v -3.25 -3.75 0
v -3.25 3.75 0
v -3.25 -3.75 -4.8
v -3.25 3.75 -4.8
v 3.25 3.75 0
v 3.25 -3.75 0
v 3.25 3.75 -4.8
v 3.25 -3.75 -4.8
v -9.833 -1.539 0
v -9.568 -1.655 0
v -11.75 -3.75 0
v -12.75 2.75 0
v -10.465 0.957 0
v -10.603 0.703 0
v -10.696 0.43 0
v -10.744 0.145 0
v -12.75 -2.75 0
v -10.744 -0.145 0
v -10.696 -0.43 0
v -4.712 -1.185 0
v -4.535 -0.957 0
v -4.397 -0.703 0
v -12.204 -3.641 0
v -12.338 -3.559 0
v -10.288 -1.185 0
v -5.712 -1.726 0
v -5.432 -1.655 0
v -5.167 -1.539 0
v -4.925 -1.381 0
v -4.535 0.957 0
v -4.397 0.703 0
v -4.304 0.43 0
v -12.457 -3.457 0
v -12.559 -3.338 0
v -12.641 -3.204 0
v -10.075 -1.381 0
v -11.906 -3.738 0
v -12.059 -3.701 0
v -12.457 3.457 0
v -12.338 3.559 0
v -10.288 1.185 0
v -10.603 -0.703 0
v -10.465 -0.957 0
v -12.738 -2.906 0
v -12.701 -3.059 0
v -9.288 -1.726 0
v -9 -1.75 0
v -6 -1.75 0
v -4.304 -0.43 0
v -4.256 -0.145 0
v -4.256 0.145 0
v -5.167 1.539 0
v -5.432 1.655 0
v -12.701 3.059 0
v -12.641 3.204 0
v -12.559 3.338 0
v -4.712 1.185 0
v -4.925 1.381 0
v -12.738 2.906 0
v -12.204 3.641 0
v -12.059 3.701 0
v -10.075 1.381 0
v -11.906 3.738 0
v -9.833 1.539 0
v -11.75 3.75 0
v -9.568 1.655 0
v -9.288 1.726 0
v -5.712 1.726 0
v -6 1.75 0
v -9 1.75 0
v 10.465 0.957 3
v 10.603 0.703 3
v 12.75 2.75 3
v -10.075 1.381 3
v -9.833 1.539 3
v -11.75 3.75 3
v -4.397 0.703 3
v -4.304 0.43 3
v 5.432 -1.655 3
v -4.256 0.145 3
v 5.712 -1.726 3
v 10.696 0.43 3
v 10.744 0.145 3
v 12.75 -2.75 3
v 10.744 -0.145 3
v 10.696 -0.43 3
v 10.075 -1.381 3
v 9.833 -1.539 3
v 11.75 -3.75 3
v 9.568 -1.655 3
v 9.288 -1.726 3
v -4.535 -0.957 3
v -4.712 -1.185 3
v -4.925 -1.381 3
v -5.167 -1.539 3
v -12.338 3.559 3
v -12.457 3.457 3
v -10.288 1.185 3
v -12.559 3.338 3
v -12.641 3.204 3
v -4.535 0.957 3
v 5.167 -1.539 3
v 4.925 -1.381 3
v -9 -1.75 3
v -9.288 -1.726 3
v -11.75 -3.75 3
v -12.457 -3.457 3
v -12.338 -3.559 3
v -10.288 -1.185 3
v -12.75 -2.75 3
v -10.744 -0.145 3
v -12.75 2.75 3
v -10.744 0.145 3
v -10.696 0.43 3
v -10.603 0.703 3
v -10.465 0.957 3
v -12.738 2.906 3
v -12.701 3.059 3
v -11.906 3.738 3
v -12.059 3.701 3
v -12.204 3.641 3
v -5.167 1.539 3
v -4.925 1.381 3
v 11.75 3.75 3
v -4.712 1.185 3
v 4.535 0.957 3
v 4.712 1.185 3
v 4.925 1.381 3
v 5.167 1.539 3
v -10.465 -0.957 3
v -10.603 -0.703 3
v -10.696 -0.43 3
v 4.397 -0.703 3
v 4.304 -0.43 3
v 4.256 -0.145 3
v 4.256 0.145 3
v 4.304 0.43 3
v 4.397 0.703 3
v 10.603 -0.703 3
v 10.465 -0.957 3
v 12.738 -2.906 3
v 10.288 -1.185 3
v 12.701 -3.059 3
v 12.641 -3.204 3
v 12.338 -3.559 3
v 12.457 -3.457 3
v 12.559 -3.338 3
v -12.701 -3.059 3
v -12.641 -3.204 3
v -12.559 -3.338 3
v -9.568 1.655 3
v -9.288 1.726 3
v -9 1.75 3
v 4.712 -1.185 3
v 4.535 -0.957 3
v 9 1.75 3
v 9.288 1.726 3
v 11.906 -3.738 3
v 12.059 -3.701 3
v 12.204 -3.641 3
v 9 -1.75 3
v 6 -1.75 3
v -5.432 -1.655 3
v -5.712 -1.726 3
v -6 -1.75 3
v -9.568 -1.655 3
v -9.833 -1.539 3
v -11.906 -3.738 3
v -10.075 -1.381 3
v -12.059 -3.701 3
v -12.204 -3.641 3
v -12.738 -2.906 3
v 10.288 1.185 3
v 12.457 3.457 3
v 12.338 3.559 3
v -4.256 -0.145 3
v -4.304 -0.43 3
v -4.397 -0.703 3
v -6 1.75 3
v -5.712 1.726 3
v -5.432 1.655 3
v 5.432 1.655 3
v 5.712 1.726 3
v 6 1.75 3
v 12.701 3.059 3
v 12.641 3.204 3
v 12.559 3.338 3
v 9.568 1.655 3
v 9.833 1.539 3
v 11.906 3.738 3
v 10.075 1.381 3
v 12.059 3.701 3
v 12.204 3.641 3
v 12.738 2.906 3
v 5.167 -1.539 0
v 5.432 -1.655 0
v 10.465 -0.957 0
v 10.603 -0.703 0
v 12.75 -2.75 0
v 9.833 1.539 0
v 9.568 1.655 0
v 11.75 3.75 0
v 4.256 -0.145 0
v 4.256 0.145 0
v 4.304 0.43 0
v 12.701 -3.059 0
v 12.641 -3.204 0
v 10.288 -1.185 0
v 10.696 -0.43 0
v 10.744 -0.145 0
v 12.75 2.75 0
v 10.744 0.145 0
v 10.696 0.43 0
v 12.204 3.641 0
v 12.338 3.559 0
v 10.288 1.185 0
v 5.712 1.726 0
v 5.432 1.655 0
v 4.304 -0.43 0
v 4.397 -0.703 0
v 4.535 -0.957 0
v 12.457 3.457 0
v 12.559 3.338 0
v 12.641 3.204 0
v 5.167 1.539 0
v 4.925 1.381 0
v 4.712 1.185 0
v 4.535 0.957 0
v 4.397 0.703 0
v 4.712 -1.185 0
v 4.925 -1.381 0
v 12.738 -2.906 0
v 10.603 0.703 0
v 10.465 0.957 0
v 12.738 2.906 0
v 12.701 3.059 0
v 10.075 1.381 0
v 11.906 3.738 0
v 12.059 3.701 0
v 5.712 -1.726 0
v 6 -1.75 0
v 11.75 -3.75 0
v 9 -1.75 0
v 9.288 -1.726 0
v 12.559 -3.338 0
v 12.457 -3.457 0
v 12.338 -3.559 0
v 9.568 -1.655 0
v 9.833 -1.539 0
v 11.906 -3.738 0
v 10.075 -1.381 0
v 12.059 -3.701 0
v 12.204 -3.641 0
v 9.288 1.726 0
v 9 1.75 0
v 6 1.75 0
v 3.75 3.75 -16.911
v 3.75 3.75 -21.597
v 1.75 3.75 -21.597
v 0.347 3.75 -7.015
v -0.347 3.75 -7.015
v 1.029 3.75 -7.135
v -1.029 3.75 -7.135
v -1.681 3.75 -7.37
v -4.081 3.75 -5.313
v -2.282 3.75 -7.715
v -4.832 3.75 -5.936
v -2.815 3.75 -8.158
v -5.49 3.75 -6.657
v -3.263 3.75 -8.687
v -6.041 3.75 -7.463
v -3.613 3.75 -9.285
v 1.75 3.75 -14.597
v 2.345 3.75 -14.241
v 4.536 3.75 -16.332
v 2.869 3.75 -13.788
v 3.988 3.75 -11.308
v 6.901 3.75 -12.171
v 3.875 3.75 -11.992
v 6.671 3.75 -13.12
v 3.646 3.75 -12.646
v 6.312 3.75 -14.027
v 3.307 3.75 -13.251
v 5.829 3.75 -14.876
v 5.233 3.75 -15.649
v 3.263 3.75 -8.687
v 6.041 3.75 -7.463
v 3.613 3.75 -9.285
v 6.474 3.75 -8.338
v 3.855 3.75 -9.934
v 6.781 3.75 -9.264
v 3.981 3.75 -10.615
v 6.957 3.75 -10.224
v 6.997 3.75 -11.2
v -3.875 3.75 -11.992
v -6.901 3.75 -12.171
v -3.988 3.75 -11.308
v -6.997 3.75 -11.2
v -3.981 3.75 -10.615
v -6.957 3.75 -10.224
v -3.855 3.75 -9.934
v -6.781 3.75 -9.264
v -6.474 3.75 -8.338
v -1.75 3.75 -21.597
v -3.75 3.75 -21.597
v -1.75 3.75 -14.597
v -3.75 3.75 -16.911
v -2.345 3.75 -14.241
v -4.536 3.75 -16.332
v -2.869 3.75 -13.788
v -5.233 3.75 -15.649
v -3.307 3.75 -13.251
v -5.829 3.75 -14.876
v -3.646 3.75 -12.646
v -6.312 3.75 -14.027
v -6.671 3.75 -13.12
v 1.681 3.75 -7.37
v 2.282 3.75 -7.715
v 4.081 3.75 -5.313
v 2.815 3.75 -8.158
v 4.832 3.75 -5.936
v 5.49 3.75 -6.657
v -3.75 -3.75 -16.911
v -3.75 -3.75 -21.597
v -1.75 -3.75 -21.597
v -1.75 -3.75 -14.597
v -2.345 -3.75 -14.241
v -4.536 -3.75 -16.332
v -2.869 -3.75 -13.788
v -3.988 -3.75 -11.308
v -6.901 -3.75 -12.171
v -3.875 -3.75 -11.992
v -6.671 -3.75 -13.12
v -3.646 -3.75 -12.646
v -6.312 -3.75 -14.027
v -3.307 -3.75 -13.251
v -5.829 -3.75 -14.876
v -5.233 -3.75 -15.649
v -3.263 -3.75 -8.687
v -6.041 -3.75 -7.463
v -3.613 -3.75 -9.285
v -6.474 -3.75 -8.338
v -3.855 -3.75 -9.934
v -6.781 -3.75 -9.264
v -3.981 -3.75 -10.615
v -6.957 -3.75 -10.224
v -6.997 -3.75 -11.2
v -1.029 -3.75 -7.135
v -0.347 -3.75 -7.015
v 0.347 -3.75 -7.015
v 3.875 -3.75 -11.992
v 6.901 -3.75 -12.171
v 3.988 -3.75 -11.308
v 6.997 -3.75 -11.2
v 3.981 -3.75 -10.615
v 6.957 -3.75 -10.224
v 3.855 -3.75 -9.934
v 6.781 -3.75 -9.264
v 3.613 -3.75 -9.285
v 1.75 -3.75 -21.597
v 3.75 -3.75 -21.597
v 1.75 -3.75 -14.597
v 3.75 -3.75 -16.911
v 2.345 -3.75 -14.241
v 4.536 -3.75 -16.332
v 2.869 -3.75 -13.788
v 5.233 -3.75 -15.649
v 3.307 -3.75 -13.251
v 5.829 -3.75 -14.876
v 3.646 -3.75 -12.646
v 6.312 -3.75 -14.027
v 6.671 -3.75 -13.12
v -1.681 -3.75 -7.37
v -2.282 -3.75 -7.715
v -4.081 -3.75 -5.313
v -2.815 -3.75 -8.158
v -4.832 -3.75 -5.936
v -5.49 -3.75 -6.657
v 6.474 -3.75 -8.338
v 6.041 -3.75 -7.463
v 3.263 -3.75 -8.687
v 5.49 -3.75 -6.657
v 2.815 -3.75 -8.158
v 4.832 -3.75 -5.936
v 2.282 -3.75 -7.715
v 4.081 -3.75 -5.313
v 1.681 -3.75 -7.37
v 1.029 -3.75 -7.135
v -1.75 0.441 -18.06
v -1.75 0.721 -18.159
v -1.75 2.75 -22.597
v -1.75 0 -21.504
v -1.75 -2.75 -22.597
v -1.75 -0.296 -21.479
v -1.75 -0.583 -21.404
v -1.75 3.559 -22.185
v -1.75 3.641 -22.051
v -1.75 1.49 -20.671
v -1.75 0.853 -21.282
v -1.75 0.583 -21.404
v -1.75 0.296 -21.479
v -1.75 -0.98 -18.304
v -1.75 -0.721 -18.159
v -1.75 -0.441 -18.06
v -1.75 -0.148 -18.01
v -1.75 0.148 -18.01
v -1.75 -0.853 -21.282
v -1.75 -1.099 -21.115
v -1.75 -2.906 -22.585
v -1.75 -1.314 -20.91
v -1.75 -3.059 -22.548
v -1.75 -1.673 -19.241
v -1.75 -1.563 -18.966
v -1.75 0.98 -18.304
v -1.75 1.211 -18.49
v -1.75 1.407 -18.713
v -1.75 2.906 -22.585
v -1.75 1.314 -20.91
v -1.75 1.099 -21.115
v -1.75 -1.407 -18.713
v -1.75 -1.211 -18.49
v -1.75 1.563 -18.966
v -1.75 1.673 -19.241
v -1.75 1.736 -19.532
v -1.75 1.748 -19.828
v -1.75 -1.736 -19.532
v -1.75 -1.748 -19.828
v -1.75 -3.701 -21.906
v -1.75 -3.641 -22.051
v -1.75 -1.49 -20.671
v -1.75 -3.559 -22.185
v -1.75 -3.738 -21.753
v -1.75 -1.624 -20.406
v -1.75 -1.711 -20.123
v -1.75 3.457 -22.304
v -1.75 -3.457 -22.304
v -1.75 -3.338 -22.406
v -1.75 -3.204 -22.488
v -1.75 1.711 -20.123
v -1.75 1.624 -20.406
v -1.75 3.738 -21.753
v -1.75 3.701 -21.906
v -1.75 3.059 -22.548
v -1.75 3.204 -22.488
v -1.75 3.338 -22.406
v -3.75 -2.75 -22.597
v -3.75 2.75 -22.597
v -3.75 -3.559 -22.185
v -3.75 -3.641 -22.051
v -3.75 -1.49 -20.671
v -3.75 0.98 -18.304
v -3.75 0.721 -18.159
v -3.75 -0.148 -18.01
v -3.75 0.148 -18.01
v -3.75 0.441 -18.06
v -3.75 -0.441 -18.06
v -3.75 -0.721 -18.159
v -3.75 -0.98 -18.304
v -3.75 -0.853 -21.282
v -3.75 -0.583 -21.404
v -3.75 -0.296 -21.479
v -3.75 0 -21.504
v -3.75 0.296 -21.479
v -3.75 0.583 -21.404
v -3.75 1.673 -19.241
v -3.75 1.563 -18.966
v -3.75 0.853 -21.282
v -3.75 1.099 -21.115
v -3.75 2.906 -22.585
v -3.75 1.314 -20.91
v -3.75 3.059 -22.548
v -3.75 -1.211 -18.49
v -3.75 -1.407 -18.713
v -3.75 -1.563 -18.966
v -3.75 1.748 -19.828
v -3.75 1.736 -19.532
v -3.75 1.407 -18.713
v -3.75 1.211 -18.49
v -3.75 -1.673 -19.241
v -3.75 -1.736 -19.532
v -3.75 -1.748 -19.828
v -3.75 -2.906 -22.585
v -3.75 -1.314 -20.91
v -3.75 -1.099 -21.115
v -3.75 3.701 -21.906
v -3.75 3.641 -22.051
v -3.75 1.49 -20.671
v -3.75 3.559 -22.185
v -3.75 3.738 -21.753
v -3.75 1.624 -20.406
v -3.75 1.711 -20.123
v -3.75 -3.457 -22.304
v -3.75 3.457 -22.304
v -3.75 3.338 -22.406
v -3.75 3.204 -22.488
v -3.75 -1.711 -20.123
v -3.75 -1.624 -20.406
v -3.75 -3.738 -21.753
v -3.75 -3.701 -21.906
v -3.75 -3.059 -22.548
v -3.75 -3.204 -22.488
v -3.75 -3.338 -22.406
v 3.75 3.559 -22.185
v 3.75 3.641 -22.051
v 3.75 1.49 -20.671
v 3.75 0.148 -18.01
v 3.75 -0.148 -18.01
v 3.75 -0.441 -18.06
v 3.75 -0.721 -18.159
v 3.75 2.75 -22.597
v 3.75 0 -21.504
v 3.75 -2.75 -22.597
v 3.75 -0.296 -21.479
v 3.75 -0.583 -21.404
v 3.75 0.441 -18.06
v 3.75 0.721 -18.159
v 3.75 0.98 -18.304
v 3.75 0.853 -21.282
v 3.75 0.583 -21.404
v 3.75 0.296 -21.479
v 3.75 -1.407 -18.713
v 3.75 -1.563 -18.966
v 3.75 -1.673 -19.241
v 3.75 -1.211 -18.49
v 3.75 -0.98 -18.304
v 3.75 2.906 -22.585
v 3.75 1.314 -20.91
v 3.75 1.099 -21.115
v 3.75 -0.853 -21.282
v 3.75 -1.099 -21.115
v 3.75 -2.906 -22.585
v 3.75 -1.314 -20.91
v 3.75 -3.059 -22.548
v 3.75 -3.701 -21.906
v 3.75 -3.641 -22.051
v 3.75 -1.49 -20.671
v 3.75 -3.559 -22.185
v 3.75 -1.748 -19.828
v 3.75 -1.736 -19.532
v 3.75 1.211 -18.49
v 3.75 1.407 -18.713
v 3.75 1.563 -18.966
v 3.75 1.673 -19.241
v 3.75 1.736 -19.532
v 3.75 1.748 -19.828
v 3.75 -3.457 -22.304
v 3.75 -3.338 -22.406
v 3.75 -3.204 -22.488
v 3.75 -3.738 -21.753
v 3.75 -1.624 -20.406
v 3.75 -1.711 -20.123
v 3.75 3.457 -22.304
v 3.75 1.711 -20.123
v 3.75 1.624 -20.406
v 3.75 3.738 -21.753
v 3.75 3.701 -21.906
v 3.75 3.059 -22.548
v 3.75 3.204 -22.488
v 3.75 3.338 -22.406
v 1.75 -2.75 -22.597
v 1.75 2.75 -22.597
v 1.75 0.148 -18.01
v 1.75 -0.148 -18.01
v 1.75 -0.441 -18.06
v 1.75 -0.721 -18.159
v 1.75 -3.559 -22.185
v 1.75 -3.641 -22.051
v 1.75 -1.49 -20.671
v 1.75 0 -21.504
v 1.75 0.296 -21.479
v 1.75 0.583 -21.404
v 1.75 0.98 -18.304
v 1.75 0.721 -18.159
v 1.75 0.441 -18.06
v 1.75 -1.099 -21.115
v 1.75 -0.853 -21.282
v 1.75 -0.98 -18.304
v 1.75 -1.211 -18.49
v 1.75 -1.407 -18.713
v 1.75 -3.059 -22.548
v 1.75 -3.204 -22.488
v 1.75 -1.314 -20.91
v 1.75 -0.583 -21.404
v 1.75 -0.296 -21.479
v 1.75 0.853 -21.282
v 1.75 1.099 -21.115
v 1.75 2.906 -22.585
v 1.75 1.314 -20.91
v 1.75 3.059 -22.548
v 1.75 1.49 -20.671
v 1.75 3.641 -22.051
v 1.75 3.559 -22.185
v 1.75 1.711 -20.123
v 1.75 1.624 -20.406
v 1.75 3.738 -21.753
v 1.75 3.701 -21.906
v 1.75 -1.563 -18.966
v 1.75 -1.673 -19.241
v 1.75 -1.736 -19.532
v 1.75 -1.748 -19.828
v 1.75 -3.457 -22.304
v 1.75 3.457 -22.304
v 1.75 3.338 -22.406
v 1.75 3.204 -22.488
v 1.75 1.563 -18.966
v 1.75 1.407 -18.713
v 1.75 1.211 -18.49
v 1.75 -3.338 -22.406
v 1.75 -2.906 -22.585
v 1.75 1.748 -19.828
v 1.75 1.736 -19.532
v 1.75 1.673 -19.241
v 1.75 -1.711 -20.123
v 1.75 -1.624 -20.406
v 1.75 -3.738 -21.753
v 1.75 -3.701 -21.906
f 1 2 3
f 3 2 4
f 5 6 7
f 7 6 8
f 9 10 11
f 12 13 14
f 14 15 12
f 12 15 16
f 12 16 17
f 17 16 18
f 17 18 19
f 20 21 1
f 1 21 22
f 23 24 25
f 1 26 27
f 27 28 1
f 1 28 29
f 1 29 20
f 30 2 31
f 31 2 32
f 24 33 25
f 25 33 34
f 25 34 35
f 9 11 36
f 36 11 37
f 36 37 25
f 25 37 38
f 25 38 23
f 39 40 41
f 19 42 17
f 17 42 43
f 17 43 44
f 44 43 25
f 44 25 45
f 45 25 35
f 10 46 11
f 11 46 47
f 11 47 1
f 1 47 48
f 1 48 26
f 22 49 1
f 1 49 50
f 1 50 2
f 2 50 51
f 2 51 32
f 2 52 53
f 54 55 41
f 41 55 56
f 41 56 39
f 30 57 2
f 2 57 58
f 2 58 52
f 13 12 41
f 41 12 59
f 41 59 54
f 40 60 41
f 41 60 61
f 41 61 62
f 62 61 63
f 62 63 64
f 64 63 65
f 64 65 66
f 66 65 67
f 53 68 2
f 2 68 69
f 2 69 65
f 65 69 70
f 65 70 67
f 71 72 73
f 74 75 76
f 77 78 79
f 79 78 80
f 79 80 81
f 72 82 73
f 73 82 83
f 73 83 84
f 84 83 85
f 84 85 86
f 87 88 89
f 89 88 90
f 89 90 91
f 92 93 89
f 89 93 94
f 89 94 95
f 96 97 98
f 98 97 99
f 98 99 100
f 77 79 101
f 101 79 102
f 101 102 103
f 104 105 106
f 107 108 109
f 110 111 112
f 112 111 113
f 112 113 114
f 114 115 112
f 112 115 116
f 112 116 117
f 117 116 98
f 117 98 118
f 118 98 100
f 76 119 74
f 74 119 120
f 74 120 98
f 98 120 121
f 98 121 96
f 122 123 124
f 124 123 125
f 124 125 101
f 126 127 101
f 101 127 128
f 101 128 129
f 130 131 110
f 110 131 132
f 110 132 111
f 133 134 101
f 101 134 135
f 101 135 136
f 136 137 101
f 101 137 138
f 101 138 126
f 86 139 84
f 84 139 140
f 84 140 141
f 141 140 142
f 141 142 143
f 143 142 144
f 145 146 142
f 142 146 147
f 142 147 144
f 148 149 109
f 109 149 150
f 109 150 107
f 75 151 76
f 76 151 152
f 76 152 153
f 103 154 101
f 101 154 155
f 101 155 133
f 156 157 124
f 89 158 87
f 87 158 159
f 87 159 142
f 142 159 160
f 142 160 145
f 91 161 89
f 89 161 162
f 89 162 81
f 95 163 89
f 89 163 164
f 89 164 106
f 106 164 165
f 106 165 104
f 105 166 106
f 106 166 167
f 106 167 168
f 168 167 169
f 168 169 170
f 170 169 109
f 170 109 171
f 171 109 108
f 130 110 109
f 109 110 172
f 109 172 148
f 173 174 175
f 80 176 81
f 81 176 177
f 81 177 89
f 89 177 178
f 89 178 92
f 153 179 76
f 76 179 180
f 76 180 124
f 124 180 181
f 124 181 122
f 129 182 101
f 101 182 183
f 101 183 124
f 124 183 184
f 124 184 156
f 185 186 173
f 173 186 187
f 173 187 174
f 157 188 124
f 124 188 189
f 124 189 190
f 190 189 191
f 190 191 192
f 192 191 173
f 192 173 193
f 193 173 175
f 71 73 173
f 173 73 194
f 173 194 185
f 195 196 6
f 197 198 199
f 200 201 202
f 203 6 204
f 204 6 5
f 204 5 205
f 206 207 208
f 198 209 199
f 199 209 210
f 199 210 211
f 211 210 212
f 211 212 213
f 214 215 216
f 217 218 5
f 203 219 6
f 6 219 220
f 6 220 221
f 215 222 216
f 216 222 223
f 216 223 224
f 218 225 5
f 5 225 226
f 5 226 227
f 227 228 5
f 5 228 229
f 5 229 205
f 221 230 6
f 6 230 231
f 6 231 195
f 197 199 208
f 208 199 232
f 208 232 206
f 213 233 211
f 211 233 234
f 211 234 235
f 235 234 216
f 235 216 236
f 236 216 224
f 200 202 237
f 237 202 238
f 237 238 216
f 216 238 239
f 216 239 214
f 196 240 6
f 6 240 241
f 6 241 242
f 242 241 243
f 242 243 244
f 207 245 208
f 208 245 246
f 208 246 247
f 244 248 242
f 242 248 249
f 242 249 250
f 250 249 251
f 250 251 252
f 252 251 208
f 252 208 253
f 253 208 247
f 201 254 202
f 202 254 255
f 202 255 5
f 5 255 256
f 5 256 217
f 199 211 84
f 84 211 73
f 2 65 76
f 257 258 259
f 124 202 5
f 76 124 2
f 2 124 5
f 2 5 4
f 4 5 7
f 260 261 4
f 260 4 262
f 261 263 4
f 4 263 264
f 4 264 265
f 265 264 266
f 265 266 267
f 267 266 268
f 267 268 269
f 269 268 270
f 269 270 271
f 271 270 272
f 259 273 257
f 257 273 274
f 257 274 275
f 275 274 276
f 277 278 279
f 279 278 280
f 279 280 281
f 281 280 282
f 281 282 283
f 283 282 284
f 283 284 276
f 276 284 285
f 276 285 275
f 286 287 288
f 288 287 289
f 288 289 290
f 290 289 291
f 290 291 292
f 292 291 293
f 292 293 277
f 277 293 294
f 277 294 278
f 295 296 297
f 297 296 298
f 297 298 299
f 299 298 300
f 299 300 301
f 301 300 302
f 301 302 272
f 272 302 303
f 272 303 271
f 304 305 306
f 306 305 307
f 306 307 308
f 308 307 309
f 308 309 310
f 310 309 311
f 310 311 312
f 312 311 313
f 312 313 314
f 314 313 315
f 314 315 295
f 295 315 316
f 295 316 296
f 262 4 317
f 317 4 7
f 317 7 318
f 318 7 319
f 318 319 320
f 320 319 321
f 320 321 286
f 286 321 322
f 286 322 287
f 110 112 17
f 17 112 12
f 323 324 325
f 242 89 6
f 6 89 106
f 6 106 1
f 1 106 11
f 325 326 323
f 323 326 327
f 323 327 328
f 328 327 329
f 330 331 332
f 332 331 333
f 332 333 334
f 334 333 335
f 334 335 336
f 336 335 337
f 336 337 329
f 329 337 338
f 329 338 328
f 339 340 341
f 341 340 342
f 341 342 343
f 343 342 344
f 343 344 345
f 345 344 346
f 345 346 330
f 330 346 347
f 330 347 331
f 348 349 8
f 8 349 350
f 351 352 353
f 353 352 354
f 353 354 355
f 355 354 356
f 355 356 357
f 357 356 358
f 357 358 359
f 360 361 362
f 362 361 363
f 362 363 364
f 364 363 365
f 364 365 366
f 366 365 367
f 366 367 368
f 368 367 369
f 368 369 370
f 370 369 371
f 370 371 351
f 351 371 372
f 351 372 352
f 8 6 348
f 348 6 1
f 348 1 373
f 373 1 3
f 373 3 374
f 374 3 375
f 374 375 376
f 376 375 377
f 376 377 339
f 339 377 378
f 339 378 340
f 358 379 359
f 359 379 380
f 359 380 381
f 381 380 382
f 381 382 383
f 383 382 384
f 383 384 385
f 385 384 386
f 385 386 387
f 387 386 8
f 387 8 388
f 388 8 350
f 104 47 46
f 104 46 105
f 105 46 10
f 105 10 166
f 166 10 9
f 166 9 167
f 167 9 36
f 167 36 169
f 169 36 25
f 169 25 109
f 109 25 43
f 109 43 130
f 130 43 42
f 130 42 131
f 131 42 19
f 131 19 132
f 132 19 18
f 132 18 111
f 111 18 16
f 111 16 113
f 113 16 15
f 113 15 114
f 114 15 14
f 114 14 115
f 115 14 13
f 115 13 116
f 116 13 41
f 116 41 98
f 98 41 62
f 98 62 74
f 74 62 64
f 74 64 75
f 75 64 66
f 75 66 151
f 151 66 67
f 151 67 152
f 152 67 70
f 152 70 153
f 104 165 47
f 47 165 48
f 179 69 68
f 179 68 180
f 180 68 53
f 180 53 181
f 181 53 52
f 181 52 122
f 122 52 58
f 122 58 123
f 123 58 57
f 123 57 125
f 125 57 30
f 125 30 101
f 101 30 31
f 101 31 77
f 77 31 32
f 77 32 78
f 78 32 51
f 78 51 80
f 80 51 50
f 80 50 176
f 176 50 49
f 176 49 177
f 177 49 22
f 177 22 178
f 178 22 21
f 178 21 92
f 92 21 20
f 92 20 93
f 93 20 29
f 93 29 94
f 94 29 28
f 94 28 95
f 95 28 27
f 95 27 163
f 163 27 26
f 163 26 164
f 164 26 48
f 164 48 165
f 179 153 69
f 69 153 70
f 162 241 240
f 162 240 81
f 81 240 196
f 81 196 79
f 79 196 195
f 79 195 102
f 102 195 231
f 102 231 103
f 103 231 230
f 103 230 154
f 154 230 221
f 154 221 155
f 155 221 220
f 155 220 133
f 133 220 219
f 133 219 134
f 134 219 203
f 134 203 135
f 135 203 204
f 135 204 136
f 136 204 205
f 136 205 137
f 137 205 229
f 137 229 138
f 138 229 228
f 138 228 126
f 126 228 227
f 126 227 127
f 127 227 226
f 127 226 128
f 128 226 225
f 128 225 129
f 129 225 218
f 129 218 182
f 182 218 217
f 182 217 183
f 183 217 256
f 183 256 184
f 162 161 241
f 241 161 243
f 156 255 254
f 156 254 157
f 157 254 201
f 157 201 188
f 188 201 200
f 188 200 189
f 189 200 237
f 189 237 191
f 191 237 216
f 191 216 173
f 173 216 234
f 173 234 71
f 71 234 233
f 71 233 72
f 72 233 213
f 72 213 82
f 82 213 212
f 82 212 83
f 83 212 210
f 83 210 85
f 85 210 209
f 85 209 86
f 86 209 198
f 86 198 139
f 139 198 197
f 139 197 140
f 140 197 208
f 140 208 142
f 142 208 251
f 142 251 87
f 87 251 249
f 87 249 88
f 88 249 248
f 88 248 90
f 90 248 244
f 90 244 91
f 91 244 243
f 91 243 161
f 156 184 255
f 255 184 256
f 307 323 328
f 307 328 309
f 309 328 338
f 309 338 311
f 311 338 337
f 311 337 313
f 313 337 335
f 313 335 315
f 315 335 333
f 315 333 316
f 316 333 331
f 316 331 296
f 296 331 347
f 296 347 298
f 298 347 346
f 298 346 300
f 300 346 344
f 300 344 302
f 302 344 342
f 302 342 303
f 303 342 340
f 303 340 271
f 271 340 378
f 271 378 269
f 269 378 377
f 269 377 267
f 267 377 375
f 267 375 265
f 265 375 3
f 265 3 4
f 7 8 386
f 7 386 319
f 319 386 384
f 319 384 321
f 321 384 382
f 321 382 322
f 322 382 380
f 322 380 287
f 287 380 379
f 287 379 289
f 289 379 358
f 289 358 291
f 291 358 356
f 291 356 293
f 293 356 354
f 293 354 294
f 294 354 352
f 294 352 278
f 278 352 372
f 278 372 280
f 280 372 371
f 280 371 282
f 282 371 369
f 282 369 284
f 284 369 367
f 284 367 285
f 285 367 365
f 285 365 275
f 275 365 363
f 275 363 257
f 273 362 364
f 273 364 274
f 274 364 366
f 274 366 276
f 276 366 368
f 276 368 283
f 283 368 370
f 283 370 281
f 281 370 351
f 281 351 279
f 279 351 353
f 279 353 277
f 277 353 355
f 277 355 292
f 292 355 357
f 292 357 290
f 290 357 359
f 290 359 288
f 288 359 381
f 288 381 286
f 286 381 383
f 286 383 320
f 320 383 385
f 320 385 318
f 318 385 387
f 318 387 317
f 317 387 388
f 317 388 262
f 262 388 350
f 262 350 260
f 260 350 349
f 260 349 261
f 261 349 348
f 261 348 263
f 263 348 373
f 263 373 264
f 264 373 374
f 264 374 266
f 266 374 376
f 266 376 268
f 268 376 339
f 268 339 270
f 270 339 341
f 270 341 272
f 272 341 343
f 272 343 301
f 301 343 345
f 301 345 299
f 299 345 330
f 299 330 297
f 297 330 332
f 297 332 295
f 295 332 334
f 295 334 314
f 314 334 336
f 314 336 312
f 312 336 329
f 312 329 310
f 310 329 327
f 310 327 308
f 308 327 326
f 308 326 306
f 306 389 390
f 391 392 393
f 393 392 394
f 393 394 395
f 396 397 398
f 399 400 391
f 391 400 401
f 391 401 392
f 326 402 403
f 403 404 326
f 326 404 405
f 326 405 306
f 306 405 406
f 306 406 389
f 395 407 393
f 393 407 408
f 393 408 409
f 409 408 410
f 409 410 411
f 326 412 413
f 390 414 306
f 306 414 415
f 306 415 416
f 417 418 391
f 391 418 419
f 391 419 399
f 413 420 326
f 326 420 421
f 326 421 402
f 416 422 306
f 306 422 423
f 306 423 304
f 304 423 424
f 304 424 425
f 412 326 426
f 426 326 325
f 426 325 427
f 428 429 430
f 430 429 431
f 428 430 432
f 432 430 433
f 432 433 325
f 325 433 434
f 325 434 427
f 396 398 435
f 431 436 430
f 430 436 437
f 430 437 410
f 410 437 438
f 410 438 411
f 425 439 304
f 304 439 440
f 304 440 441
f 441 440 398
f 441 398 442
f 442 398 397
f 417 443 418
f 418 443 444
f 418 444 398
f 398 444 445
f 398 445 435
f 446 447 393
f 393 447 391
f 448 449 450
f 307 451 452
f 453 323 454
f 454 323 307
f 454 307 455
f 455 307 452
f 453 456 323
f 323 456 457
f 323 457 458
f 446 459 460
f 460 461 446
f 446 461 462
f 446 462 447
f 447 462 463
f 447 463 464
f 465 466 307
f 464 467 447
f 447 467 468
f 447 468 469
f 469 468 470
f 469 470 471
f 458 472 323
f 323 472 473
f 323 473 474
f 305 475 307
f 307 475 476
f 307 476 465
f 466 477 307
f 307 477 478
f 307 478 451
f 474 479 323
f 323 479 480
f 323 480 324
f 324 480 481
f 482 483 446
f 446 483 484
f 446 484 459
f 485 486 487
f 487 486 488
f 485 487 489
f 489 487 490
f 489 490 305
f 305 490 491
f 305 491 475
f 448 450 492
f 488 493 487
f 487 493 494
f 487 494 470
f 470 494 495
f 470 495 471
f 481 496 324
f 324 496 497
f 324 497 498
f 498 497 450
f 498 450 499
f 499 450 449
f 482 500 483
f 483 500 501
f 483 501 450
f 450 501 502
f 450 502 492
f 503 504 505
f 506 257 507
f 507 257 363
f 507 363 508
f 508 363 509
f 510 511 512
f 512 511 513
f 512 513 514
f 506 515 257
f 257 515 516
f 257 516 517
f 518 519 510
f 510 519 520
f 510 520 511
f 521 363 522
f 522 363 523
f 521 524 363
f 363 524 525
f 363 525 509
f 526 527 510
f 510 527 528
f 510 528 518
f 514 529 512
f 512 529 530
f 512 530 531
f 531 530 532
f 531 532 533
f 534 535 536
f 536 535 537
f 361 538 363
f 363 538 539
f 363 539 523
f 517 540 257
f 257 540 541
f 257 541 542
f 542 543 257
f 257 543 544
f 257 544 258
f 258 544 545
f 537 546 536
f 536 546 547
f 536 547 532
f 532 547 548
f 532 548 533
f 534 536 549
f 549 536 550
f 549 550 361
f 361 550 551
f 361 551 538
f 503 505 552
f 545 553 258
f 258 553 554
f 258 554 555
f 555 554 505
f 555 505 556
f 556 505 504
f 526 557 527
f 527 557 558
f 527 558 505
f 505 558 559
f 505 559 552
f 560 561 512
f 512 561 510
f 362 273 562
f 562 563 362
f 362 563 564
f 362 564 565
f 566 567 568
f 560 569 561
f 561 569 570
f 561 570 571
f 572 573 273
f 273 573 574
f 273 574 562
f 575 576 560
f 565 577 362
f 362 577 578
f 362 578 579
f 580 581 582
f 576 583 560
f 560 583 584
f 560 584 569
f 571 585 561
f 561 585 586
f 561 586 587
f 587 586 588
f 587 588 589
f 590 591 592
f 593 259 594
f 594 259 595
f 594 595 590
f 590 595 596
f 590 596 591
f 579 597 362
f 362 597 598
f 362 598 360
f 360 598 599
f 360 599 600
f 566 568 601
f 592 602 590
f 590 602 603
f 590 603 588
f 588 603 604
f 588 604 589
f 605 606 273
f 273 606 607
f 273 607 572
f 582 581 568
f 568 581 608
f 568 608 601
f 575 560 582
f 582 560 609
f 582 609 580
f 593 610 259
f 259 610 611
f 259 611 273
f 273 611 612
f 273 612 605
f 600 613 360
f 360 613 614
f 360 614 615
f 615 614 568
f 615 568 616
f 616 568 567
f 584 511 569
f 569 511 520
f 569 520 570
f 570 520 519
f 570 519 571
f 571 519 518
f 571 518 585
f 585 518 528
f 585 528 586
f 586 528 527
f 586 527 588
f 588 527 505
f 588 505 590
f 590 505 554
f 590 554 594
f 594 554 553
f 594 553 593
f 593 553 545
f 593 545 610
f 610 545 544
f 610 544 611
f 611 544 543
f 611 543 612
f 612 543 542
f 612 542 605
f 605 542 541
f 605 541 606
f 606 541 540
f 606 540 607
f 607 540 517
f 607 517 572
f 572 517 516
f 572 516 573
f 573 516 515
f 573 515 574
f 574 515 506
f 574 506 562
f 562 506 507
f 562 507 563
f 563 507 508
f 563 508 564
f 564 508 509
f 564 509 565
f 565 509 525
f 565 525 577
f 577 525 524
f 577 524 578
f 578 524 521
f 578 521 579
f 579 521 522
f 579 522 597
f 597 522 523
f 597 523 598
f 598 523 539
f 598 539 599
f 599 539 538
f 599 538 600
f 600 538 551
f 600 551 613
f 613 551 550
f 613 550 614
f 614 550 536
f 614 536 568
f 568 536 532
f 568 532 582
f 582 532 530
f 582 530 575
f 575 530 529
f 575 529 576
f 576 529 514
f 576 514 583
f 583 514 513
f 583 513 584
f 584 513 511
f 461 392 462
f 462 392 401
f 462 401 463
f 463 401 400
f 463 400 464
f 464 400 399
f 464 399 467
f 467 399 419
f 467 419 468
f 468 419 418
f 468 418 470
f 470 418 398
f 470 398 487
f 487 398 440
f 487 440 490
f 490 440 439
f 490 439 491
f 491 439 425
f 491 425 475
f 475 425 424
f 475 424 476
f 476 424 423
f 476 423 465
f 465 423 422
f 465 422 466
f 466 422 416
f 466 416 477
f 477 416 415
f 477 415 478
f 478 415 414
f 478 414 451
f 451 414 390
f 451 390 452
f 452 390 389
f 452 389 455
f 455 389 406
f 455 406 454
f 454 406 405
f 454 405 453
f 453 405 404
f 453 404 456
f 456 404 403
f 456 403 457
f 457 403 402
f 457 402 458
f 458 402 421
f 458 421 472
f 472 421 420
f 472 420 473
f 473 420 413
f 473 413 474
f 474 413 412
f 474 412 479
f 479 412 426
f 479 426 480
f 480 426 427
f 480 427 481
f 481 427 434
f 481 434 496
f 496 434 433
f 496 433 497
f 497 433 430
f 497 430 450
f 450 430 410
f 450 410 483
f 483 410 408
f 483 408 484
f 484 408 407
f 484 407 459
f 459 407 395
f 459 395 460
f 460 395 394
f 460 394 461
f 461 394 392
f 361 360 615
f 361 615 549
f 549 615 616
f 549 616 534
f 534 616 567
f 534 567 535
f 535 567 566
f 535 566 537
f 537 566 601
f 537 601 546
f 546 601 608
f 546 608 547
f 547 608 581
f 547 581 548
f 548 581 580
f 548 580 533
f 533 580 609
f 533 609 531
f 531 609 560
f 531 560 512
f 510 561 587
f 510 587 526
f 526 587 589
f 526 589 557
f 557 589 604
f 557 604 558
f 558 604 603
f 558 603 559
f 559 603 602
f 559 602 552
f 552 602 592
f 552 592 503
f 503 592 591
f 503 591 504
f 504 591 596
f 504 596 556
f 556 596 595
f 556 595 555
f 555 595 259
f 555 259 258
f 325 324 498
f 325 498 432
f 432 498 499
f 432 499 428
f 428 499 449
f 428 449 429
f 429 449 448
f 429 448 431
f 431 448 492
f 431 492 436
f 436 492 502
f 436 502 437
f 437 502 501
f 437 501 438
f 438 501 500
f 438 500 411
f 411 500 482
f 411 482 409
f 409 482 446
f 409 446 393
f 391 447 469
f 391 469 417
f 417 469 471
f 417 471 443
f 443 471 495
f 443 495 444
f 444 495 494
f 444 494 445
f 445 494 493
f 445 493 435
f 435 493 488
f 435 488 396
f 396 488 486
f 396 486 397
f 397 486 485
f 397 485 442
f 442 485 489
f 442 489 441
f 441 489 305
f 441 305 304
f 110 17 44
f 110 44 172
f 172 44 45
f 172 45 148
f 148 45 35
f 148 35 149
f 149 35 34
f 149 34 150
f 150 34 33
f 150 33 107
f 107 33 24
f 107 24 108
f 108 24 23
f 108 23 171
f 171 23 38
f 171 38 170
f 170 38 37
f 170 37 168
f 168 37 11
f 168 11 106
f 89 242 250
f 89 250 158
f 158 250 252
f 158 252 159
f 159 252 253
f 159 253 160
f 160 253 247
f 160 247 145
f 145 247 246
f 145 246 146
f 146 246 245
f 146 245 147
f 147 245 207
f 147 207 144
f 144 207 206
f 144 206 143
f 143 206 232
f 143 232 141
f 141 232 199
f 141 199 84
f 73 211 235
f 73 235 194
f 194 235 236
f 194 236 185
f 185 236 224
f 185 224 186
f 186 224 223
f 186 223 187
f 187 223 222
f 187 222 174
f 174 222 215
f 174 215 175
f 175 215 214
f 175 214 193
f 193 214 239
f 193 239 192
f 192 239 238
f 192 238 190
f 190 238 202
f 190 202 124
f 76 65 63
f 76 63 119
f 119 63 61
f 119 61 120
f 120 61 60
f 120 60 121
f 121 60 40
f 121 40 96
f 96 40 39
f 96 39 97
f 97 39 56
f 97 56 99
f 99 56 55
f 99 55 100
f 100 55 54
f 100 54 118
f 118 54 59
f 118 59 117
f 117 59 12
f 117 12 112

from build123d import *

# Parameters (mm, degrees)
SKETCH_1_W          = 25.5
SKETCH_1_H          = 7.5
EXTRUDE_1_DEPTH     = 3
SKETCH_2_W          = 6.5
SKETCH_2_H          = 7.5
EXTRUDE_2_DEPTH     = 7
EXTRUDE_3_DEPTH     = 3.75
SKETCH_4_R          = 1.75
CUT_EXTRUDE_1_DEPTH = 29.229969862
FILLET_1_R          = 1


with BuildPart() as part:
    # 草图1 → 凸台-拉伸1 (new body)
    with BuildSketch(Plane.XY):
        Rectangle(SKETCH_1_W, SKETCH_1_H)
        with BuildLine():
            Line((-9, 1.75), (-6, 1.75))
            ThreePointArc((-6, 1.75), (-4.25, 0), (-6, -1.75))
            Line((-6, -1.75), (-9, -1.75))
            ThreePointArc((-9, -1.75), (-10.75, 0), (-9, 1.75))
        make_face(mode=Mode.SUBTRACT)
        with BuildLine():
            Line((6, 1.75), (9, 1.75))
            ThreePointArc((9, 1.75), (10.75, 0), (9, -1.75))
            Line((9, -1.75), (6, -1.75))
            ThreePointArc((6, -1.75), (4.25, 0), (6, 1.75))
        make_face(mode=Mode.SUBTRACT)
    extrude(amount=EXTRUDE_1_DEPTH)

    # 草图2 → 凸台-拉伸2 (add)
    with BuildSketch(Plane(origin=(0, 0, 0), x_dir=(-1, 0, 0), z_dir=(0, 0, -1))):
        Rectangle(SKETCH_2_W, SKETCH_2_H)
    extrude(amount=EXTRUDE_2_DEPTH)

    # 草图3 → 凸台-拉伸3 (add, symmetric)
    with BuildSketch(Plane(origin=(0, 0, 0), x_dir=(1, 0, 0), z_dir=(0, 1, 0))):
        with BuildLine():
            Line((-3.75, 14.596873642), (-3.75, 16.910795209))
            ThreePointArc((-3.75, 16.910795209), (-3.372684391, 4.866077927), (7, 11))
            ThreePointArc((7, 11), (6.133922073, 14.372684391), (3.75, 16.910795209))
            Line((3.75, 16.910795209), (3.75, 14.596873642))
            Line((3.75, 14.596873642), (1.75, 14.596873642))
            ThreePointArc((1.75, 14.596873642), (3.391164992, 13.121320344), (4, 11))
            ThreePointArc((4, 11), (-2.121320344, 7.608835008), (-1.75, 14.596873642))
            Line((-1.75, 14.596873642), (-3.75, 14.596873642))
        make_face()
        with BuildLine():
            ThreePointArc((-1.75, 17.777720856), (-2.78395223, 17.422585926), (-3.75, 16.910795209))
            Line((-3.75, 16.910795209), (-3.75, 14.596873642))
            Line((-3.75, 14.596873642), (-1.75, 14.596873642))
            Line((-1.75, 14.596873642), (-1.75, 17.777720856))
        make_face()
        with BuildLine():
            Line((-1.75, 22.596873642), (-3.75, 22.596873642))
            Line((-3.75, 22.596873642), (-3.75, 16.910795209))
            ThreePointArc((-3.75, 16.910795209), (-2.78395223, 17.422585926), (-1.75, 17.777720856))
            Line((-1.75, 17.777720856), (-1.75, 22.596873642))
        make_face()
        with BuildLine():
            Line((1.75, 22.596873642), (1.75, 17.777720856))
            ThreePointArc((1.75, 17.777720856), (2.78395223, 17.422585926), (3.75, 16.910795209))
            Line((3.75, 16.910795209), (3.75, 22.596873642))
            Line((3.75, 22.596873642), (1.75, 22.596873642))
        make_face()
        with BuildLine():
            ThreePointArc((3.75, 16.910795209), (2.78395223, 17.422585926), (1.75, 17.777720856))
            Line((1.75, 17.777720856), (1.75, 14.596873642))
            Line((1.75, 14.596873642), (3.75, 14.596873642))
            Line((3.75, 14.596873642), (3.75, 16.910795209))
        make_face()
    extrude(amount=EXTRUDE_3_DEPTH, both=True)

    # 草图4 → 切除-拉伸1 (cut, through all)
    with BuildSketch(Plane(origin=(3.75, 0, 0), x_dir=(0, 0, -1), z_dir=(1, 0, 0))):
        with Locations((19.753834426, 0)):
            Circle(SKETCH_4_R)
    extrude(amount=-CUT_EXTRUDE_1_DEPTH, mode=Mode.SUBTRACT)

    # 圆角1
    fillet_1_edges = [part.edges().sort_by_distance(p)[0] for p in [
        (2.75, -3.75, -22.596873642),
        (2.75, 3.75, -22.596873642),
        (-2.75, -3.75, -22.596873642),
        (-2.75, 3.75, -22.596873642),
        (-12.75, -3.75, 1.5),
        (12.75, -3.75, 1.5),
        (12.75, 3.75, 1.5),
        (-12.75, 3.75, 1.5),
    ]]
    fillet(fillet_1_edges, radius=FILLET_1_R)


solid = part.part
